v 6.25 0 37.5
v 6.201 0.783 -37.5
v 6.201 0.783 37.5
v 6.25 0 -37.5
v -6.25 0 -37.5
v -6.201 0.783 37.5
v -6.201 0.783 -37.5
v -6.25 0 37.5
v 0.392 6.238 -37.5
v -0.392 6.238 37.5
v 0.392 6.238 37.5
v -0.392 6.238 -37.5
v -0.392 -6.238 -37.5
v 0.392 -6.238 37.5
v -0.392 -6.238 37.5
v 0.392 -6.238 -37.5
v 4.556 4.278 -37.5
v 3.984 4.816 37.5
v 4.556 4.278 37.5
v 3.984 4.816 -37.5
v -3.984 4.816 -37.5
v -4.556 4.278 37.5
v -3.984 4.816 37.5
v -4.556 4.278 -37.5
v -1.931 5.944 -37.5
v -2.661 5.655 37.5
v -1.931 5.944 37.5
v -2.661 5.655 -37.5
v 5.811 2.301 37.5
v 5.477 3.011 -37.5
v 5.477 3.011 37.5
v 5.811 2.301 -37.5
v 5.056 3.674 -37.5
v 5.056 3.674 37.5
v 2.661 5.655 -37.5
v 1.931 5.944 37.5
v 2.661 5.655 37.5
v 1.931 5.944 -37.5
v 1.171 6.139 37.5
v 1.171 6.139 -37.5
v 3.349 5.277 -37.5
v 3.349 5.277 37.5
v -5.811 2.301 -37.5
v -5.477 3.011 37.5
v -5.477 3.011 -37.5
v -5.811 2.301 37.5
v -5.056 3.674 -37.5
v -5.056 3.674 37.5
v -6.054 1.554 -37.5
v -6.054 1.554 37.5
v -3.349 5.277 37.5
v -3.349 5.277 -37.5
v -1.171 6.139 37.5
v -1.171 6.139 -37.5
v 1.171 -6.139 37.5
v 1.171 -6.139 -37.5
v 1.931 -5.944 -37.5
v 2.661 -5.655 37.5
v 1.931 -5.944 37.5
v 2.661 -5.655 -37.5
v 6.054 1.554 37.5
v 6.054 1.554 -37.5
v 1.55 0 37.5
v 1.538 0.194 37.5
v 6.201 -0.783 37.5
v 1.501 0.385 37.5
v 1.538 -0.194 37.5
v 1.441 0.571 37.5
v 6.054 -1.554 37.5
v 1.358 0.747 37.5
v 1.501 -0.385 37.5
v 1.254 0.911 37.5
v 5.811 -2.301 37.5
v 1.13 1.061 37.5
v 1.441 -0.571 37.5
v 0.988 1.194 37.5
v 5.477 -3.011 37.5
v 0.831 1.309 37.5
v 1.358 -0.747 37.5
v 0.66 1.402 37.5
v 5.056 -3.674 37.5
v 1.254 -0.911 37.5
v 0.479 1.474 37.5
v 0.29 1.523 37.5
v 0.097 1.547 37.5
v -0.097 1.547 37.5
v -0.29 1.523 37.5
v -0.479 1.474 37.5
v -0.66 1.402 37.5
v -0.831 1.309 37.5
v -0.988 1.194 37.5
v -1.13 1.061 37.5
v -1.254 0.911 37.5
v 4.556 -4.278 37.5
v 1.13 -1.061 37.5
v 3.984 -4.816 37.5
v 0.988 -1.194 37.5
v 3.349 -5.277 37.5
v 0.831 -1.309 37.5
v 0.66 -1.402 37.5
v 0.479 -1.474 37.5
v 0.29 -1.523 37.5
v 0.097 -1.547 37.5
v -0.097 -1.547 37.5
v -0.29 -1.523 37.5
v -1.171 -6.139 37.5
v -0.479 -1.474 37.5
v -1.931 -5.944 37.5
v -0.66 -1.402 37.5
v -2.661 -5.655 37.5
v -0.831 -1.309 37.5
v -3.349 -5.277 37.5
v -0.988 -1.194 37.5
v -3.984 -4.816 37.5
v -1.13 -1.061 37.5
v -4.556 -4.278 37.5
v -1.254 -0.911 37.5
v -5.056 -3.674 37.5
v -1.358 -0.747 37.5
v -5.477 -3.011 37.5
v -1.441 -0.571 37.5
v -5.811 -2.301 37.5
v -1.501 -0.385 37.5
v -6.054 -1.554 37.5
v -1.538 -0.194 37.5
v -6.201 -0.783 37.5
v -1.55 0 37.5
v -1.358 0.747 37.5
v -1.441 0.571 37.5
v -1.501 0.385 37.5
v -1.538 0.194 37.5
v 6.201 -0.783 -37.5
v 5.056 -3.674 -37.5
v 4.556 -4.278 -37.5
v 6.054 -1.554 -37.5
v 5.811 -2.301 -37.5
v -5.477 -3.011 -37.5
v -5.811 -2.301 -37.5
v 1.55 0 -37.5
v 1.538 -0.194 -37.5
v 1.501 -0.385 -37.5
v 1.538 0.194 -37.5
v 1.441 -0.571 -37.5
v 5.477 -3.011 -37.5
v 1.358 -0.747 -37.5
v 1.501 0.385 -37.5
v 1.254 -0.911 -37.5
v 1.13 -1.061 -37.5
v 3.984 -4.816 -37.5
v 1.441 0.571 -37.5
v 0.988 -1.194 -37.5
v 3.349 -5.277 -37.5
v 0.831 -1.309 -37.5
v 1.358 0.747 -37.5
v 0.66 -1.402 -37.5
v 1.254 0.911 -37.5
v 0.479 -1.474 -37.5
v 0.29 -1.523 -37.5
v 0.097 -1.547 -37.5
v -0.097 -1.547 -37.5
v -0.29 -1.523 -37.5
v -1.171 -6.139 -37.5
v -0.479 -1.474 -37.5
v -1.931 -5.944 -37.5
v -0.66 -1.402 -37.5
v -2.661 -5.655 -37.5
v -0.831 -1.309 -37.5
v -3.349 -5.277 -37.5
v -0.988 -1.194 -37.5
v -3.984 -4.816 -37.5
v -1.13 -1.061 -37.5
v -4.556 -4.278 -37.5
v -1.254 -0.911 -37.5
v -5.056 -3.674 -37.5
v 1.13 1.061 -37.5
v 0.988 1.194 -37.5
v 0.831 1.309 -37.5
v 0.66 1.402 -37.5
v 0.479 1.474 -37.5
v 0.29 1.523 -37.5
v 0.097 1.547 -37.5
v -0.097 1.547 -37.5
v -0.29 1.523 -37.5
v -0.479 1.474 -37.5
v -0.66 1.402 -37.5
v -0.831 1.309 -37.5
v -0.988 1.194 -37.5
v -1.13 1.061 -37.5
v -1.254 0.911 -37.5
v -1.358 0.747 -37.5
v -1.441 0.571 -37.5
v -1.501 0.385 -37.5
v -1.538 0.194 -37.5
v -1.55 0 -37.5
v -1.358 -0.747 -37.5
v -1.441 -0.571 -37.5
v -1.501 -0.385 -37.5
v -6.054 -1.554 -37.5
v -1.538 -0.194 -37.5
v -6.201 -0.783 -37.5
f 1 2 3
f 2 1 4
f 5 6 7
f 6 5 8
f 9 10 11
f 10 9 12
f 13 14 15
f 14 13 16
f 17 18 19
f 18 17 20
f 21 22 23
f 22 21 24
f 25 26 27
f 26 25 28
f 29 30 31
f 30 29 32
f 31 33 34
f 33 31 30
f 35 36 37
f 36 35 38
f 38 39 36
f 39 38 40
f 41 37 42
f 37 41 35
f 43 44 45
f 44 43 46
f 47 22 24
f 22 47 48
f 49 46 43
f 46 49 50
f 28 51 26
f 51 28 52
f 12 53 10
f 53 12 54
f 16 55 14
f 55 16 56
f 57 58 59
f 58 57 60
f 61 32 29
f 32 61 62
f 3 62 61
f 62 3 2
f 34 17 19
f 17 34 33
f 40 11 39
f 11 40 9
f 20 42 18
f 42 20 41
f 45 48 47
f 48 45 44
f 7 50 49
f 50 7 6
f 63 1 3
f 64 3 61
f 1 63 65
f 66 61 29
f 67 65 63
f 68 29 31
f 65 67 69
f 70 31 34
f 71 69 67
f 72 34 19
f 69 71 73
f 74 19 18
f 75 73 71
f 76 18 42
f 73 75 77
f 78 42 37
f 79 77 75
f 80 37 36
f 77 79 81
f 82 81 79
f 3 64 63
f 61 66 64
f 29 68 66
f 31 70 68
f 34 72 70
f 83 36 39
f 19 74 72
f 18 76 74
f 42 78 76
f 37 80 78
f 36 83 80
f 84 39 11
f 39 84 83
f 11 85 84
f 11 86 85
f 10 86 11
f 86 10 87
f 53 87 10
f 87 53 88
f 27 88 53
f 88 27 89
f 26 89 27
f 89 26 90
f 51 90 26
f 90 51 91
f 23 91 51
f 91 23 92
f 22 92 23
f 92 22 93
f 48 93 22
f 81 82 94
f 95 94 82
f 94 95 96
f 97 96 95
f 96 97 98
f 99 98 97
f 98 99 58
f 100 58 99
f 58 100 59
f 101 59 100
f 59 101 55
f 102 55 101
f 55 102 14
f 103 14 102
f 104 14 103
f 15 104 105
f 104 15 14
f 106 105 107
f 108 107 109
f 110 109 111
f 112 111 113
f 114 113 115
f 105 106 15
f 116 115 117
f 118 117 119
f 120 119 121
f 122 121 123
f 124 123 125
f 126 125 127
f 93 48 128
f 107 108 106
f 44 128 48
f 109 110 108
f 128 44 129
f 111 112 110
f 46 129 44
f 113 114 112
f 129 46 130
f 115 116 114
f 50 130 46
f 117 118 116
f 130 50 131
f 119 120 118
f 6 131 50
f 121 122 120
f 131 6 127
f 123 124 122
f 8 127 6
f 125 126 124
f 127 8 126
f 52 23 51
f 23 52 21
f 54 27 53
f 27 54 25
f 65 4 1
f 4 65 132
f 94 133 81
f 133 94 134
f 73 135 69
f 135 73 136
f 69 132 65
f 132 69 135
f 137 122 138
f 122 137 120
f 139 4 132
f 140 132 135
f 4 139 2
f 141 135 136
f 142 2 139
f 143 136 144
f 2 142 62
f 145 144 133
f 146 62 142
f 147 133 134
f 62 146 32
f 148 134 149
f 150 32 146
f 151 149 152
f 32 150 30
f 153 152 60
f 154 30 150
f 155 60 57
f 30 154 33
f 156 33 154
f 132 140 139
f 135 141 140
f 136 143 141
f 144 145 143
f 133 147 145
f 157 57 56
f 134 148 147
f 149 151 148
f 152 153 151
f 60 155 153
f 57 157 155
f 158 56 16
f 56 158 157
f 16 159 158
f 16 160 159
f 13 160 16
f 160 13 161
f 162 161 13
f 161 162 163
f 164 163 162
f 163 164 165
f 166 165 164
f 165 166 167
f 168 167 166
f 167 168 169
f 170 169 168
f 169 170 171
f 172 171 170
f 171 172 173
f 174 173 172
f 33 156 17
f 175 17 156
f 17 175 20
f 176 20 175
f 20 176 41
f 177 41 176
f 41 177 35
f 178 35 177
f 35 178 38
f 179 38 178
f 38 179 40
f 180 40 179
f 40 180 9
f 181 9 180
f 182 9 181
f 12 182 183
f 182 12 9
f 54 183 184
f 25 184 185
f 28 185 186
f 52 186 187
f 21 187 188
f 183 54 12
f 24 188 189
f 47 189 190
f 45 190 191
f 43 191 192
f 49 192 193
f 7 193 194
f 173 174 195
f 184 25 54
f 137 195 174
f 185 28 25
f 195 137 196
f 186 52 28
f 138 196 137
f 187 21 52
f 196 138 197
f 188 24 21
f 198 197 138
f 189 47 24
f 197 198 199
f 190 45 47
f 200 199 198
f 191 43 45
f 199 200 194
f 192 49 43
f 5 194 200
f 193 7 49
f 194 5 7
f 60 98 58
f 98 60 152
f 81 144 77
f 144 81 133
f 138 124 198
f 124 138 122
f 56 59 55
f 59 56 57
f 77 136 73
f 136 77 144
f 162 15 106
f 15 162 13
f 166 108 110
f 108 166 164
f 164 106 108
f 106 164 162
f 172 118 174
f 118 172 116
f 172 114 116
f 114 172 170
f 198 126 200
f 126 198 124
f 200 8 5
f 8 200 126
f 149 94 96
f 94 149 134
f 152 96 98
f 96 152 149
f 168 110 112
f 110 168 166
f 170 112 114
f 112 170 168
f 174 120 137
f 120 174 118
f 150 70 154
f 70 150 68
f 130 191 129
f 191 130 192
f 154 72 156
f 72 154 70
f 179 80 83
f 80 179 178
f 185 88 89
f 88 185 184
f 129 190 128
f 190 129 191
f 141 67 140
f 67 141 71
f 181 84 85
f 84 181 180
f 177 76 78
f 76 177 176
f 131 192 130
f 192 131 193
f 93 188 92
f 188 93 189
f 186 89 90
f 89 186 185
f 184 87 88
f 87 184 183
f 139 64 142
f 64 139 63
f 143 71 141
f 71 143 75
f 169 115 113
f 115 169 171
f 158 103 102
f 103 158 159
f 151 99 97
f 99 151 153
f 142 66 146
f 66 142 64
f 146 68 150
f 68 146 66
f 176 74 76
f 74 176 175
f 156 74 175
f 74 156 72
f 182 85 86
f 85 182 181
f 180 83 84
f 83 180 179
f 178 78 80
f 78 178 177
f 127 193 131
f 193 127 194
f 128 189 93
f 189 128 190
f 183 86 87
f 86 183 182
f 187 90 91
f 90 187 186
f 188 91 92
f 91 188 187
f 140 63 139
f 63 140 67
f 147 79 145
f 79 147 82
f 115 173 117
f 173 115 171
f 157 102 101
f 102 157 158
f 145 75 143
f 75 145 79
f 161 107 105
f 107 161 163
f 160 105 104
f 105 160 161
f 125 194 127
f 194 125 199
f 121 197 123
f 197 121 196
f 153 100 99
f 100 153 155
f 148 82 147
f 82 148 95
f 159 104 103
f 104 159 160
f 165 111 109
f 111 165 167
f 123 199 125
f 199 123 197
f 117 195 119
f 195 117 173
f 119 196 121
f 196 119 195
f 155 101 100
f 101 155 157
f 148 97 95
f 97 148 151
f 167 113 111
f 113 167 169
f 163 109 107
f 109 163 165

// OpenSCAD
$fn = 50;


difference() {
	union() {
		translate(v = [0, 0, -37.5000000000]) {
			cylinder(h = 75, r = 6.2500000000);
		}
	}
	union() {
		translate(v = [0, 0, -100.0000000000]) {
			cylinder(h = 200, r = 1.5500000000);
		}
	}
}
